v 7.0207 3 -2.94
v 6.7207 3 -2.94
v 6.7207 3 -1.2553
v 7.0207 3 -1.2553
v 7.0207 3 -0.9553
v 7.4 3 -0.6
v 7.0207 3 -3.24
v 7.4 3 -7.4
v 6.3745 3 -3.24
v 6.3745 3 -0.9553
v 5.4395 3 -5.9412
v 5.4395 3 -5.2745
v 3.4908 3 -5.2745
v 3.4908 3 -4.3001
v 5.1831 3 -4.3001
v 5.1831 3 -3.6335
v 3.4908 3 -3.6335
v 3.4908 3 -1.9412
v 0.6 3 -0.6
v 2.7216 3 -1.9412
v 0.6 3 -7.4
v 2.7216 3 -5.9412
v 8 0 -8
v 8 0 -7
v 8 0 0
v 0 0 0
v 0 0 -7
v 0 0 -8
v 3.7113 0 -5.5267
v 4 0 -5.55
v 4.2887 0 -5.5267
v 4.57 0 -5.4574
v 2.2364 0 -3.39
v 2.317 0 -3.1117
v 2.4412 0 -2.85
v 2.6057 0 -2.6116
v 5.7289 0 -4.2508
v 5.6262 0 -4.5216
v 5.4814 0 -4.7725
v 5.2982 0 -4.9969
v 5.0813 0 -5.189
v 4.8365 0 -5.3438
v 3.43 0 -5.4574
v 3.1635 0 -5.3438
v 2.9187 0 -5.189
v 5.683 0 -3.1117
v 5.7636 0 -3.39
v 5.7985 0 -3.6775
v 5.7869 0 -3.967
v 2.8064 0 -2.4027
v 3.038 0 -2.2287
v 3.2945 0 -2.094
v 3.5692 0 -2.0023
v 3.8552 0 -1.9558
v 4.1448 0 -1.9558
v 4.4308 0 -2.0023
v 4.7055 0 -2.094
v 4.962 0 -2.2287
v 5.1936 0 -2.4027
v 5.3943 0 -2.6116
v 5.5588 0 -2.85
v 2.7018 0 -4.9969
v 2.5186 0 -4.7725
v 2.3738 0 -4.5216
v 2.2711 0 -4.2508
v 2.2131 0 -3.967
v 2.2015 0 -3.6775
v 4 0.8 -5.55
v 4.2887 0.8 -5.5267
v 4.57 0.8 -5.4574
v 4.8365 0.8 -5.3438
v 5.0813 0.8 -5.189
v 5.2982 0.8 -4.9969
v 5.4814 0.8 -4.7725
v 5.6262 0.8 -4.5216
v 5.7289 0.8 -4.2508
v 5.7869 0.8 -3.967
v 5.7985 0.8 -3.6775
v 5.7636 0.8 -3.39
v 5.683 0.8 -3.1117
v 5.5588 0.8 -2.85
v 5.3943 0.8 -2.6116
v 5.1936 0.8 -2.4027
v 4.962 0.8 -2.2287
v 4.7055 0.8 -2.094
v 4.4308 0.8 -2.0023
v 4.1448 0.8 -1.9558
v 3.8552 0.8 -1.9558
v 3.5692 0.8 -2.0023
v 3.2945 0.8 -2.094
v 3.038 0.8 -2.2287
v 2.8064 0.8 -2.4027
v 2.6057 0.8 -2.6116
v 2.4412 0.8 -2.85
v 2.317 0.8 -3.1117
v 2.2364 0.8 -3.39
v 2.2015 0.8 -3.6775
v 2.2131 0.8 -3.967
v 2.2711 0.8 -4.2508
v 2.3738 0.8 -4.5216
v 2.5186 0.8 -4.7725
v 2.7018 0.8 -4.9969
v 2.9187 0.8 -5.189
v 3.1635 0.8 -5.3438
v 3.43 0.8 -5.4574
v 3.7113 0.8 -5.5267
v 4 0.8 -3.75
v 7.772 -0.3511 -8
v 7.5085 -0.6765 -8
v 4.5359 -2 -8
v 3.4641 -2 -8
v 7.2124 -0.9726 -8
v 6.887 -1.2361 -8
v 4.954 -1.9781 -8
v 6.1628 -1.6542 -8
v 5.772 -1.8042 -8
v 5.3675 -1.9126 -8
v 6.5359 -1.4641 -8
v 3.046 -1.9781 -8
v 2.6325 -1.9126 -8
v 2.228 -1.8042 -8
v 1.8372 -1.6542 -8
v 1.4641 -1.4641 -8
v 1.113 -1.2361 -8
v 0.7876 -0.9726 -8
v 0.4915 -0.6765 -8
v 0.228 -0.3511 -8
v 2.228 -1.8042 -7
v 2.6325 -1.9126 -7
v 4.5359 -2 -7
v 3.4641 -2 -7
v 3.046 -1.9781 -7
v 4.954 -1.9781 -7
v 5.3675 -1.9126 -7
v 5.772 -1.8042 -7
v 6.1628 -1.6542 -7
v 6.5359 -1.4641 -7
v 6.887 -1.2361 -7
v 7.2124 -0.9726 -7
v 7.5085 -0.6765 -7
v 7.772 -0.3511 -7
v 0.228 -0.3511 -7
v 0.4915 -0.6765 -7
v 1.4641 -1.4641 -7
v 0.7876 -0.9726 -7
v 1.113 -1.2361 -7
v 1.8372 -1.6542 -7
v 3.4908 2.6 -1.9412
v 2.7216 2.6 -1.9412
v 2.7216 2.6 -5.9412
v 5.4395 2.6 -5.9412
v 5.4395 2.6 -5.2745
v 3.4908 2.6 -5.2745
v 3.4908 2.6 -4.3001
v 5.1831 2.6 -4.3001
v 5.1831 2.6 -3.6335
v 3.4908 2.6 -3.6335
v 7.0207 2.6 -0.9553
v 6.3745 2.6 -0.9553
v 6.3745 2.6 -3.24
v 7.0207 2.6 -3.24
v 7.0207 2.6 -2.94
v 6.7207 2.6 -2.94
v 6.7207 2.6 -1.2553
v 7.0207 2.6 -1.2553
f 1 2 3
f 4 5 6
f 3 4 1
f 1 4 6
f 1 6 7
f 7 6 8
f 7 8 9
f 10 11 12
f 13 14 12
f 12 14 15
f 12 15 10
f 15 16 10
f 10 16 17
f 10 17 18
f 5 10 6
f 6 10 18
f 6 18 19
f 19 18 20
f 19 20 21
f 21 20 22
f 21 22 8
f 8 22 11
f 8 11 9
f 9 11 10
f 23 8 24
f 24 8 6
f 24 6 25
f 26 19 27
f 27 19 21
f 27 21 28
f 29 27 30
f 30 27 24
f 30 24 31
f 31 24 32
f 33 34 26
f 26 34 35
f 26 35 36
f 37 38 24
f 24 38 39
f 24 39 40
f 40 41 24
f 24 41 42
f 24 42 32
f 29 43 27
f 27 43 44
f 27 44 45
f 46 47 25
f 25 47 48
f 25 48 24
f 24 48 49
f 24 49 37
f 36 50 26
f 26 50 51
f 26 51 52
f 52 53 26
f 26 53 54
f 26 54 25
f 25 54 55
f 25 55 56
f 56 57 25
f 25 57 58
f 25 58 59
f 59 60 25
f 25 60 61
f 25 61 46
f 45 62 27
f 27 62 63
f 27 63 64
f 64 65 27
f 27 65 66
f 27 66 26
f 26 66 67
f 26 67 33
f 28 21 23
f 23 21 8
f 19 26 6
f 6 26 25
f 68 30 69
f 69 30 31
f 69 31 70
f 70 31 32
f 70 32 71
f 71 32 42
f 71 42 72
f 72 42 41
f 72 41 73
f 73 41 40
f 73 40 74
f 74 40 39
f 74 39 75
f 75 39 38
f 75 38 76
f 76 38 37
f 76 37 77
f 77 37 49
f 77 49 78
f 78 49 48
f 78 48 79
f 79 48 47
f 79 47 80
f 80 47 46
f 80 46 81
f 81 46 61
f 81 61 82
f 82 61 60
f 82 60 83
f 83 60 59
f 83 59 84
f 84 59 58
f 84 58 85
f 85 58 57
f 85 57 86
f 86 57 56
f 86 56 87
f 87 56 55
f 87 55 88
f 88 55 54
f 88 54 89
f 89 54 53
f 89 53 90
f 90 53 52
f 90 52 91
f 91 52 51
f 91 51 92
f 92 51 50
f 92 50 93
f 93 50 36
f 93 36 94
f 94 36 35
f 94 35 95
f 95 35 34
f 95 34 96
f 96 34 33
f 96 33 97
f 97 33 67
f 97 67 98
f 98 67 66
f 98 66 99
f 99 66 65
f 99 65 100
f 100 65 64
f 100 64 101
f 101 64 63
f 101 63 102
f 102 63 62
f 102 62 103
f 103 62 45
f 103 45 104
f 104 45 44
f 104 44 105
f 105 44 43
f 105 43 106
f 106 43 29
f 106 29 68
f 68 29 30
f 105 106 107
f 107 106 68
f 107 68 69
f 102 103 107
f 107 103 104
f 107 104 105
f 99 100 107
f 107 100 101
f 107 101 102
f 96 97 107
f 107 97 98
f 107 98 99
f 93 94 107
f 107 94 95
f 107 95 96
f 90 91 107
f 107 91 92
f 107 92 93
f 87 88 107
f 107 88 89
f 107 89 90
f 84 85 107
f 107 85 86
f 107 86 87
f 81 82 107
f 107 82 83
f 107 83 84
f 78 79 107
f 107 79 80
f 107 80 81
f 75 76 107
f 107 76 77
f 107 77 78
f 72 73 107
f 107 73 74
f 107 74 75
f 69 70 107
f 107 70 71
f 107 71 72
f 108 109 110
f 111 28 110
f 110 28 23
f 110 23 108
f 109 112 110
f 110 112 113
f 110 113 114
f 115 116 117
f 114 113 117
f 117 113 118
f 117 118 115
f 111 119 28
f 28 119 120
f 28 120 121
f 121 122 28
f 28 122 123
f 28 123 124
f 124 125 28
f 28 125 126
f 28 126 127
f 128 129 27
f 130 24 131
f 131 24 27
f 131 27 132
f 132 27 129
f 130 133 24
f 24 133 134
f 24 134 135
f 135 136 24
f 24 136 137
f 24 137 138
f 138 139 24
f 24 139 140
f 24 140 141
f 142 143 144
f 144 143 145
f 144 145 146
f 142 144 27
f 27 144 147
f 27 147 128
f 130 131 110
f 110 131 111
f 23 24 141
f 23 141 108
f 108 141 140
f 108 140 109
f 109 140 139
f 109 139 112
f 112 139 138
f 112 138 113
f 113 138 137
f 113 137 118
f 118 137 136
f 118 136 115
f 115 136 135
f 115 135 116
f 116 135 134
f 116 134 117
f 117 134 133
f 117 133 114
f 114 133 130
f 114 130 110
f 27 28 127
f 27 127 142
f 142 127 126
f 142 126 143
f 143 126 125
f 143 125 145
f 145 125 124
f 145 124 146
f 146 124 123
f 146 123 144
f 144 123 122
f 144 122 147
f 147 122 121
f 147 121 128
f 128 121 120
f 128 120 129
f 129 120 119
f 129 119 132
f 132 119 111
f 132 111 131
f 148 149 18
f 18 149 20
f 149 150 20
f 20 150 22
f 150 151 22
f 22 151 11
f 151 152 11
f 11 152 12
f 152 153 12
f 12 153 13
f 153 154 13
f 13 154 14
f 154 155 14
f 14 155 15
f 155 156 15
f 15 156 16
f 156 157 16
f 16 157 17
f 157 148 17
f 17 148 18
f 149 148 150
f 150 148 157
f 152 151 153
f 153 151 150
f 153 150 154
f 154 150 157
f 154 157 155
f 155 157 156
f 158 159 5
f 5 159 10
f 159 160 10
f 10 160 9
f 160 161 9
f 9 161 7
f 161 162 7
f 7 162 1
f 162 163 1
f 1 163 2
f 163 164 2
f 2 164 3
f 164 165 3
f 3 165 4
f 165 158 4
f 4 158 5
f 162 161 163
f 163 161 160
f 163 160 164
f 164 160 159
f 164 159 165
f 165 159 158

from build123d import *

# Parameters (mm, degrees)
SKETCH1_W               = 8
SKETCH1_H               = 8
BOSS_EXTRUDE1_DEPTH     = 3
CUT_EXTRUDE1_DEPTH      = 12.704699911
CUT_EXTRUDE1_DEPTH_BACK = 12.704699911
CUT_EXTRUDE2_DEPTH      = 11
SKETCH4_R               = 1.8
CUT_EXTRUDE3_DEPTH      = 0.8
SKETCH5_W               = 8
SKETCH5_H               = 1
BOSS_EXTRUDE2_DEPTH     = 2
FILLET1_R               = 4
CUT_EXTRUDE4_DEPTH      = 0.4
CUT_EXTRUDE5_DEPTH      = 0.4


with BuildPart() as part:
    # Sketch1 → Boss-Extrude1 (new body)
    with BuildSketch(Plane(origin=(0, 0, 0), x_dir=(1, 0, 0), z_dir=(0, 1, 0))):
        with Locations((4, 4)):
            Rectangle(SKETCH1_W, SKETCH1_H)
    extrude(amount=BOSS_EXTRUDE1_DEPTH)

    # Sketch2 → Cut-Extrude1 (cut, two sides: drawn at the far end of the back side and taken through both)
    with BuildSketch(Plane.XY.offset(-CUT_EXTRUDE1_DEPTH_BACK)):
        Polygon((0, 0), (0.6, 3), (0, 3), align=None)
        Polygon((8, 0), (7.4, 3), (8, 3), align=None)
    extrude(amount=CUT_EXTRUDE1_DEPTH + CUT_EXTRUDE1_DEPTH_BACK, mode=Mode.SUBTRACT)

    # Sketch3 → Cut-Extrude2 (cut)
    with BuildSketch(Plane(origin=(0, 0, 0), x_dir=(0, 0, -1), z_dir=(1, 0, 0))):
        Polygon((0, 0), (0.6, 3), (0, 3), align=None)
        Polygon((8, 3), (7.4, 3), (8, 0), align=None)
    extrude(amount=CUT_EXTRUDE2_DEPTH, mode=Mode.SUBTRACT)

    # Sketch4 → Cut-Extrude3 (cut)
    with BuildSketch(Plane.XZ):
        with Locations(Location((4, -3.75, 0), (0, 0, 270))):
            Circle(SKETCH4_R)
    extrude(amount=-CUT_EXTRUDE3_DEPTH, mode=Mode.SUBTRACT)

    # Sketch5 → Boss-Extrude2 (add)
    with BuildSketch(Plane.XZ):
        with Locations((4, -7.5)):
            Rectangle(SKETCH5_W, SKETCH5_H)
    extrude(amount=BOSS_EXTRUDE2_DEPTH)

    # Fillet1
    # the kernel refuses this fillet: 4 mm, written as the material it takes off along each edge
    with BuildSketch(Plane(origin=(8, -2, -16.660254038), x_dir=(0, 1, 0), z_dir=(0, 0, 1)), Plane(origin=(0, -2, 1.660254038), x_dir=(0, 1, 0), z_dir=(0, 0, -1))) as fillet1_piece_1:
        with BuildLine():
            CenterArc((4, 3.464101615), FILLET1_R, 180, 60)
            Line((0, 3.464101615), (-0.08, 3.464101615))
            Line((-0.08, 3.464101615), (-0.08, 0))
            Line((-0.08, 0), (0, -0.08))
            ThreePointArc((0, -0.08), (1, -0.08), (1.96, -0.069282032))
            Line((1.96, -0.069282032), (2, 0))
        make_face()
    extrude(amount=18.320508076, mode=Mode.SUBTRACT)

    # Sketch6 → Cut-Extrude4 (cut)
    with BuildSketch(Plane(origin=(0, 3, 0), x_dir=(1, 0, 0), z_dir=(0, 1, 0))):
        Polygon((2.721575188, 1.941169366), (2.721575188, 5.941169366), (5.439523906, 5.941169366), (5.439523906, 5.2745027), (3.490805957, 5.2745027), (3.490805957, 4.300143725), (5.18311365, 4.300143725), (5.18311365, 3.633477059), (3.490805957, 3.633477059), (3.490805957, 1.941169366), align=None)
    extrude(amount=-CUT_EXTRUDE4_DEPTH, mode=Mode.SUBTRACT)

    # Sketch7 → Cut-Extrude5 (cut)
    with BuildSketch(Plane(origin=(0, 3, 0), x_dir=(1, 0, 0), z_dir=(0, 1, 0))):
        Polygon((6.374503362, 0.955347226), (6.374503362, 3.239962611), (7.020657208, 3.239962611), (7.020657208, 2.939962611), (6.720657208, 2.939962611), (6.720657208, 1.255347226), (7.020657208, 1.255347226), (7.020657208, 0.955347226), align=None)
    extrude(amount=-CUT_EXTRUDE5_DEPTH, mode=Mode.SUBTRACT)


solid = part.part
